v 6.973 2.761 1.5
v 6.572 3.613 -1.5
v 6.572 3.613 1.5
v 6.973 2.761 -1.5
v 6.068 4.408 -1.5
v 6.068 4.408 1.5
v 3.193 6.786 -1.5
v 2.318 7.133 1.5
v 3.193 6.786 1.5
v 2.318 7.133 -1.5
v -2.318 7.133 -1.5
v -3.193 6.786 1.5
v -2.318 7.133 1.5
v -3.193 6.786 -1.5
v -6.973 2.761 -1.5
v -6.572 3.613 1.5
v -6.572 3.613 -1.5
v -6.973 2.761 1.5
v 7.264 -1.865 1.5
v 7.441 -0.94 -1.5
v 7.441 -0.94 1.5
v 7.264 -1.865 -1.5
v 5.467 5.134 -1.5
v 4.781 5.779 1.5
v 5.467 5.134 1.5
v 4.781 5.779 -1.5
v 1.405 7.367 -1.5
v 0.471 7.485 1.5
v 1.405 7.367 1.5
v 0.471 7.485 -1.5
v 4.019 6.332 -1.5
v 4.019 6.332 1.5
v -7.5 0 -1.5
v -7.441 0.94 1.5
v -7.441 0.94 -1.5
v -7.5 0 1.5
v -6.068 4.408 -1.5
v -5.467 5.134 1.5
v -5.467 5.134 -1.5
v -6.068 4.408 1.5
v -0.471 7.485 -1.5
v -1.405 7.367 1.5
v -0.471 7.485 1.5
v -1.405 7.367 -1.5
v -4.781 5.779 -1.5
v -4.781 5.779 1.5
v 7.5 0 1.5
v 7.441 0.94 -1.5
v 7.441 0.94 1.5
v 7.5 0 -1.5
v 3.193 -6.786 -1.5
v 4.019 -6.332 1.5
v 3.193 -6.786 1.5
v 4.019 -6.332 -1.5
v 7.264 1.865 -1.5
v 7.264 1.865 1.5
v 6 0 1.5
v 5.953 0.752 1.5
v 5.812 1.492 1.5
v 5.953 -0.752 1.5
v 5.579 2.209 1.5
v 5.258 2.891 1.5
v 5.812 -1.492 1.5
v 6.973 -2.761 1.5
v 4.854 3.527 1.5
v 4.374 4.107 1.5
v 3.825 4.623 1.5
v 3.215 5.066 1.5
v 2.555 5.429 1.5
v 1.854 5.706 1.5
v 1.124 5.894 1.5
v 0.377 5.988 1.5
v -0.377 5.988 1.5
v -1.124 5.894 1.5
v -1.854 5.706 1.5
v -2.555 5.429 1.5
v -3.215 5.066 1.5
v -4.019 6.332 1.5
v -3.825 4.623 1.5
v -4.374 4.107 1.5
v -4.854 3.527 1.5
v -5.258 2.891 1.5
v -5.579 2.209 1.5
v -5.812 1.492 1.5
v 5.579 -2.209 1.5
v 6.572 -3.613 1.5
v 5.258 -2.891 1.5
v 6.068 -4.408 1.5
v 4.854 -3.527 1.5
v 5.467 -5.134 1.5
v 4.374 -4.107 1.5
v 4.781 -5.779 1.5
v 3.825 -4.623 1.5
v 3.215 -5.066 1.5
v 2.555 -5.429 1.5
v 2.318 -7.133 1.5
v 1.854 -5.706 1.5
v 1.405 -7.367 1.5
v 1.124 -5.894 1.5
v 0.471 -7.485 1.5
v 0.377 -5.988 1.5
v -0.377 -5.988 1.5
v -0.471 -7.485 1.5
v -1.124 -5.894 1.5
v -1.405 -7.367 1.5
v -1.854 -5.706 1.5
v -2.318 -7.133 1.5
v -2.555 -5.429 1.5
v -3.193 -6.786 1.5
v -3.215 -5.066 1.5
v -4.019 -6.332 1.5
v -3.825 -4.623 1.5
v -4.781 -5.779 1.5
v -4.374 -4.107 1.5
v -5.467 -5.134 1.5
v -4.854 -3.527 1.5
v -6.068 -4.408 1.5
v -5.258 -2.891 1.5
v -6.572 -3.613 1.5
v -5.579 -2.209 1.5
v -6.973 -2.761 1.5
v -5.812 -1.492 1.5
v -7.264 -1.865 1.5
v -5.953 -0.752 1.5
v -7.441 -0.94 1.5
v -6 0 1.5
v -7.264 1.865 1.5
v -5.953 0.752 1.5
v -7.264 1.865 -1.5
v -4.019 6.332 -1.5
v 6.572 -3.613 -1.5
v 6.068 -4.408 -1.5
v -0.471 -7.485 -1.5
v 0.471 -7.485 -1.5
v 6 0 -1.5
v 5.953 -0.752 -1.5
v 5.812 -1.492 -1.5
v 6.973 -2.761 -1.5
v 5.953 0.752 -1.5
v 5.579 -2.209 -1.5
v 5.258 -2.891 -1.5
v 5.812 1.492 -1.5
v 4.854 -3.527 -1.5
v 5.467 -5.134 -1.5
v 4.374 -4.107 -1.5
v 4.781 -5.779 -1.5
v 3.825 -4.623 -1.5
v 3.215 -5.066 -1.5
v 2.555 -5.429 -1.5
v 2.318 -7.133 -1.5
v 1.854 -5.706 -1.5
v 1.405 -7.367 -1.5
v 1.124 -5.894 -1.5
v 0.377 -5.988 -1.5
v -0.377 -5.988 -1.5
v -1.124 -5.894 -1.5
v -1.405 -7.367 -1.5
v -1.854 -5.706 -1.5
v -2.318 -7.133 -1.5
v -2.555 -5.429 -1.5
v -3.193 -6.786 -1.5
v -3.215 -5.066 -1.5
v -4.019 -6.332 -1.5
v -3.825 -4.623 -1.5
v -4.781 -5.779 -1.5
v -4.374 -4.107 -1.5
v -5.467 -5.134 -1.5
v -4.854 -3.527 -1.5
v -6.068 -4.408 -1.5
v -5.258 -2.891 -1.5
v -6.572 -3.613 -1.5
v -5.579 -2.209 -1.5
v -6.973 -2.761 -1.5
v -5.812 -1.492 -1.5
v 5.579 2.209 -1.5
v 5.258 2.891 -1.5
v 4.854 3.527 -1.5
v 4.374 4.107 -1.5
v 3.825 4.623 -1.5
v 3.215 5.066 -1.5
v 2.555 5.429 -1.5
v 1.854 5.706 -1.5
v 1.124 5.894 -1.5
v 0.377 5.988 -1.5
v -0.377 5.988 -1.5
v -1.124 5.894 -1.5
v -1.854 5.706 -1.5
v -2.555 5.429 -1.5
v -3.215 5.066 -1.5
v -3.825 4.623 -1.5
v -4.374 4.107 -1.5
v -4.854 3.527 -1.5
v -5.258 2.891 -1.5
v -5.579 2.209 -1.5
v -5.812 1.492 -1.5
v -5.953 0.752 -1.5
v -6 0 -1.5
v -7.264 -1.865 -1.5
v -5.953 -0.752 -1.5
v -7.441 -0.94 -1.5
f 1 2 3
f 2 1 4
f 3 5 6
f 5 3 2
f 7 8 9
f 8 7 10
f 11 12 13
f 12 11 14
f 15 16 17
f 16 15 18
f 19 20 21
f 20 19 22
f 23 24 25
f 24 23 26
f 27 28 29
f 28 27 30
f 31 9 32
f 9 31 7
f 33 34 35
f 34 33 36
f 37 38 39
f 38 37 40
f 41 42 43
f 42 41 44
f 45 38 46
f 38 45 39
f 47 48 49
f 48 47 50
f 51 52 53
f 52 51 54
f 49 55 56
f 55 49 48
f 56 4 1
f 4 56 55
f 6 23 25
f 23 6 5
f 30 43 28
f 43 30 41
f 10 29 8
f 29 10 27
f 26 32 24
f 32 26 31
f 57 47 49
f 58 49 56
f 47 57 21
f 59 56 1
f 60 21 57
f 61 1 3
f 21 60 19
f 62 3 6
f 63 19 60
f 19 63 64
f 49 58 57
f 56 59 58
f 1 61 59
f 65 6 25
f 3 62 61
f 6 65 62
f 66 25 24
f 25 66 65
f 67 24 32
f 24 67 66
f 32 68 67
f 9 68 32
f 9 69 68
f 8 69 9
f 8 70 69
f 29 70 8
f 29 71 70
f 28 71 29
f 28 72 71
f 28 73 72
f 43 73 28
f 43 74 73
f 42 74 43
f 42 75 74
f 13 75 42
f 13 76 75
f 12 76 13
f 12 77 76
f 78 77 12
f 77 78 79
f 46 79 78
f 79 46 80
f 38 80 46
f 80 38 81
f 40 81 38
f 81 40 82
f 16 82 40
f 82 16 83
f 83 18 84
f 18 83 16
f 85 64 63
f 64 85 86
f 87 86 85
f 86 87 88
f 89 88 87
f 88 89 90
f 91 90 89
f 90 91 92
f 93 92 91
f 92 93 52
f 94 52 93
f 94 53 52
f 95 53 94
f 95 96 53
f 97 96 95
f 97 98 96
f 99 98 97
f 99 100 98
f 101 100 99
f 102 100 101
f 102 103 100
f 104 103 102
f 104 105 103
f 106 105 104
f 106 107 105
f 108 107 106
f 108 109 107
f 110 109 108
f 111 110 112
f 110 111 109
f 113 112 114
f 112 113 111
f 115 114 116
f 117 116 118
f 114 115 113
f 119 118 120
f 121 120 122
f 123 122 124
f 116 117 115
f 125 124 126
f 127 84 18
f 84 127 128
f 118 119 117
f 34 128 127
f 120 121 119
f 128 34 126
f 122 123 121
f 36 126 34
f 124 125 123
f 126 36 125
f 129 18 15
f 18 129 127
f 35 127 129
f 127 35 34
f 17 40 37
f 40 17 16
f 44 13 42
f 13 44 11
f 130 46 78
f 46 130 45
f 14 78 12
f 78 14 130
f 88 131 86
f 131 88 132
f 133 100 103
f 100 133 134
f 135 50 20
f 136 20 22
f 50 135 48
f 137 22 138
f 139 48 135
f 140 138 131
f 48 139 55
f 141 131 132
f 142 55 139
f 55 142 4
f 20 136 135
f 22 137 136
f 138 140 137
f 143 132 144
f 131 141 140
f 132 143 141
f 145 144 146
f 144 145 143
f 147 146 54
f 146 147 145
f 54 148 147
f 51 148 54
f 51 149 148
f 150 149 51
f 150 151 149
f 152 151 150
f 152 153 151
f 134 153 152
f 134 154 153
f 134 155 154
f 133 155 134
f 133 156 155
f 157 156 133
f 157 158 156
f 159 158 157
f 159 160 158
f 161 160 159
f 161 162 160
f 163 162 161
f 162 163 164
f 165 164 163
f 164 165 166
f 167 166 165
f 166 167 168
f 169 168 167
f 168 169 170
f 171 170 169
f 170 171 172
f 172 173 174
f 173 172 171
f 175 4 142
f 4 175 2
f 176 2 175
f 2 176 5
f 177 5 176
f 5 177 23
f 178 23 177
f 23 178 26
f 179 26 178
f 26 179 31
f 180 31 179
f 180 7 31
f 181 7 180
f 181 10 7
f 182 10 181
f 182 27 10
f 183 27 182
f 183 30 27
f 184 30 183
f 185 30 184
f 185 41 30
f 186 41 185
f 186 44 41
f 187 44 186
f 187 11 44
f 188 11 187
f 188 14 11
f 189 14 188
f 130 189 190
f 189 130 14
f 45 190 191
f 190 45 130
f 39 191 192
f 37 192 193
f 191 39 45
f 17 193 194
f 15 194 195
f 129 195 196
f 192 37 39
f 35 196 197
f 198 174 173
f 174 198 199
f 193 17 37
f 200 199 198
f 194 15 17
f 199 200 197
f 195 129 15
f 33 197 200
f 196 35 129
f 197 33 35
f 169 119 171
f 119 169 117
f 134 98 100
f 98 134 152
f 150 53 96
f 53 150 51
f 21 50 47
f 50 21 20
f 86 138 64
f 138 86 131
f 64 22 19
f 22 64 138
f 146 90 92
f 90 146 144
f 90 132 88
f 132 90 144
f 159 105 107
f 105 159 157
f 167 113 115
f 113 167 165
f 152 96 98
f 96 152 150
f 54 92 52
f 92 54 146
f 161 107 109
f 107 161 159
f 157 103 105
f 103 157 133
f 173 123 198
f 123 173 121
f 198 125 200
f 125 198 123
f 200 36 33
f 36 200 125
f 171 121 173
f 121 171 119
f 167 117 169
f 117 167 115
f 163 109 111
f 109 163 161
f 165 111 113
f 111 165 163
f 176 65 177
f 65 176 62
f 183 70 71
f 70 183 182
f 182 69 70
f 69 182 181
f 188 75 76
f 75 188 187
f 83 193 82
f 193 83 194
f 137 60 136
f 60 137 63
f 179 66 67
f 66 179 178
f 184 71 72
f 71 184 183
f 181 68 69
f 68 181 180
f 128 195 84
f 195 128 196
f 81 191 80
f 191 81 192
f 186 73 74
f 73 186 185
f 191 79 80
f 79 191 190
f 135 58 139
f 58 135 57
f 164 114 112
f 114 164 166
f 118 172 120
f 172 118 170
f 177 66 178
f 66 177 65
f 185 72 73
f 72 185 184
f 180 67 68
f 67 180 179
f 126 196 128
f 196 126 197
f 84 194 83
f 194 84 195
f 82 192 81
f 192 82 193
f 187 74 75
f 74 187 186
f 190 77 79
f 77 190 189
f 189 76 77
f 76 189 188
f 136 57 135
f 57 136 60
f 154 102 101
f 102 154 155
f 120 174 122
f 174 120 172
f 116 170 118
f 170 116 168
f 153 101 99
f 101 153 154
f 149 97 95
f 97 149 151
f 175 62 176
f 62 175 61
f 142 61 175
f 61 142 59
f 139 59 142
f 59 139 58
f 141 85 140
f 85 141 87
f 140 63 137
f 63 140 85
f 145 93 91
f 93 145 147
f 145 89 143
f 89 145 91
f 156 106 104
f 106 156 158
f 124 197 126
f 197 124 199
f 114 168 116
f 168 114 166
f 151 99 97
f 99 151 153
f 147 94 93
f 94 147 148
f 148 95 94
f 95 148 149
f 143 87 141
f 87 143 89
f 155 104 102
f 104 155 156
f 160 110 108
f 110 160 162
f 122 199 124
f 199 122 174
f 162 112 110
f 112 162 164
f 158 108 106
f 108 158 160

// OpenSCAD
$fn = 50;


difference() {
	union() {
		translate(v = [0, 0, -1.5000000000]) {
			cylinder(h = 3, r = 7.5000000000);
		}
	}
	union() {
		translate(v = [0, 0, -100.0000000000]) {
			cylinder(h = 200, r = 6);
		}
	}
}
